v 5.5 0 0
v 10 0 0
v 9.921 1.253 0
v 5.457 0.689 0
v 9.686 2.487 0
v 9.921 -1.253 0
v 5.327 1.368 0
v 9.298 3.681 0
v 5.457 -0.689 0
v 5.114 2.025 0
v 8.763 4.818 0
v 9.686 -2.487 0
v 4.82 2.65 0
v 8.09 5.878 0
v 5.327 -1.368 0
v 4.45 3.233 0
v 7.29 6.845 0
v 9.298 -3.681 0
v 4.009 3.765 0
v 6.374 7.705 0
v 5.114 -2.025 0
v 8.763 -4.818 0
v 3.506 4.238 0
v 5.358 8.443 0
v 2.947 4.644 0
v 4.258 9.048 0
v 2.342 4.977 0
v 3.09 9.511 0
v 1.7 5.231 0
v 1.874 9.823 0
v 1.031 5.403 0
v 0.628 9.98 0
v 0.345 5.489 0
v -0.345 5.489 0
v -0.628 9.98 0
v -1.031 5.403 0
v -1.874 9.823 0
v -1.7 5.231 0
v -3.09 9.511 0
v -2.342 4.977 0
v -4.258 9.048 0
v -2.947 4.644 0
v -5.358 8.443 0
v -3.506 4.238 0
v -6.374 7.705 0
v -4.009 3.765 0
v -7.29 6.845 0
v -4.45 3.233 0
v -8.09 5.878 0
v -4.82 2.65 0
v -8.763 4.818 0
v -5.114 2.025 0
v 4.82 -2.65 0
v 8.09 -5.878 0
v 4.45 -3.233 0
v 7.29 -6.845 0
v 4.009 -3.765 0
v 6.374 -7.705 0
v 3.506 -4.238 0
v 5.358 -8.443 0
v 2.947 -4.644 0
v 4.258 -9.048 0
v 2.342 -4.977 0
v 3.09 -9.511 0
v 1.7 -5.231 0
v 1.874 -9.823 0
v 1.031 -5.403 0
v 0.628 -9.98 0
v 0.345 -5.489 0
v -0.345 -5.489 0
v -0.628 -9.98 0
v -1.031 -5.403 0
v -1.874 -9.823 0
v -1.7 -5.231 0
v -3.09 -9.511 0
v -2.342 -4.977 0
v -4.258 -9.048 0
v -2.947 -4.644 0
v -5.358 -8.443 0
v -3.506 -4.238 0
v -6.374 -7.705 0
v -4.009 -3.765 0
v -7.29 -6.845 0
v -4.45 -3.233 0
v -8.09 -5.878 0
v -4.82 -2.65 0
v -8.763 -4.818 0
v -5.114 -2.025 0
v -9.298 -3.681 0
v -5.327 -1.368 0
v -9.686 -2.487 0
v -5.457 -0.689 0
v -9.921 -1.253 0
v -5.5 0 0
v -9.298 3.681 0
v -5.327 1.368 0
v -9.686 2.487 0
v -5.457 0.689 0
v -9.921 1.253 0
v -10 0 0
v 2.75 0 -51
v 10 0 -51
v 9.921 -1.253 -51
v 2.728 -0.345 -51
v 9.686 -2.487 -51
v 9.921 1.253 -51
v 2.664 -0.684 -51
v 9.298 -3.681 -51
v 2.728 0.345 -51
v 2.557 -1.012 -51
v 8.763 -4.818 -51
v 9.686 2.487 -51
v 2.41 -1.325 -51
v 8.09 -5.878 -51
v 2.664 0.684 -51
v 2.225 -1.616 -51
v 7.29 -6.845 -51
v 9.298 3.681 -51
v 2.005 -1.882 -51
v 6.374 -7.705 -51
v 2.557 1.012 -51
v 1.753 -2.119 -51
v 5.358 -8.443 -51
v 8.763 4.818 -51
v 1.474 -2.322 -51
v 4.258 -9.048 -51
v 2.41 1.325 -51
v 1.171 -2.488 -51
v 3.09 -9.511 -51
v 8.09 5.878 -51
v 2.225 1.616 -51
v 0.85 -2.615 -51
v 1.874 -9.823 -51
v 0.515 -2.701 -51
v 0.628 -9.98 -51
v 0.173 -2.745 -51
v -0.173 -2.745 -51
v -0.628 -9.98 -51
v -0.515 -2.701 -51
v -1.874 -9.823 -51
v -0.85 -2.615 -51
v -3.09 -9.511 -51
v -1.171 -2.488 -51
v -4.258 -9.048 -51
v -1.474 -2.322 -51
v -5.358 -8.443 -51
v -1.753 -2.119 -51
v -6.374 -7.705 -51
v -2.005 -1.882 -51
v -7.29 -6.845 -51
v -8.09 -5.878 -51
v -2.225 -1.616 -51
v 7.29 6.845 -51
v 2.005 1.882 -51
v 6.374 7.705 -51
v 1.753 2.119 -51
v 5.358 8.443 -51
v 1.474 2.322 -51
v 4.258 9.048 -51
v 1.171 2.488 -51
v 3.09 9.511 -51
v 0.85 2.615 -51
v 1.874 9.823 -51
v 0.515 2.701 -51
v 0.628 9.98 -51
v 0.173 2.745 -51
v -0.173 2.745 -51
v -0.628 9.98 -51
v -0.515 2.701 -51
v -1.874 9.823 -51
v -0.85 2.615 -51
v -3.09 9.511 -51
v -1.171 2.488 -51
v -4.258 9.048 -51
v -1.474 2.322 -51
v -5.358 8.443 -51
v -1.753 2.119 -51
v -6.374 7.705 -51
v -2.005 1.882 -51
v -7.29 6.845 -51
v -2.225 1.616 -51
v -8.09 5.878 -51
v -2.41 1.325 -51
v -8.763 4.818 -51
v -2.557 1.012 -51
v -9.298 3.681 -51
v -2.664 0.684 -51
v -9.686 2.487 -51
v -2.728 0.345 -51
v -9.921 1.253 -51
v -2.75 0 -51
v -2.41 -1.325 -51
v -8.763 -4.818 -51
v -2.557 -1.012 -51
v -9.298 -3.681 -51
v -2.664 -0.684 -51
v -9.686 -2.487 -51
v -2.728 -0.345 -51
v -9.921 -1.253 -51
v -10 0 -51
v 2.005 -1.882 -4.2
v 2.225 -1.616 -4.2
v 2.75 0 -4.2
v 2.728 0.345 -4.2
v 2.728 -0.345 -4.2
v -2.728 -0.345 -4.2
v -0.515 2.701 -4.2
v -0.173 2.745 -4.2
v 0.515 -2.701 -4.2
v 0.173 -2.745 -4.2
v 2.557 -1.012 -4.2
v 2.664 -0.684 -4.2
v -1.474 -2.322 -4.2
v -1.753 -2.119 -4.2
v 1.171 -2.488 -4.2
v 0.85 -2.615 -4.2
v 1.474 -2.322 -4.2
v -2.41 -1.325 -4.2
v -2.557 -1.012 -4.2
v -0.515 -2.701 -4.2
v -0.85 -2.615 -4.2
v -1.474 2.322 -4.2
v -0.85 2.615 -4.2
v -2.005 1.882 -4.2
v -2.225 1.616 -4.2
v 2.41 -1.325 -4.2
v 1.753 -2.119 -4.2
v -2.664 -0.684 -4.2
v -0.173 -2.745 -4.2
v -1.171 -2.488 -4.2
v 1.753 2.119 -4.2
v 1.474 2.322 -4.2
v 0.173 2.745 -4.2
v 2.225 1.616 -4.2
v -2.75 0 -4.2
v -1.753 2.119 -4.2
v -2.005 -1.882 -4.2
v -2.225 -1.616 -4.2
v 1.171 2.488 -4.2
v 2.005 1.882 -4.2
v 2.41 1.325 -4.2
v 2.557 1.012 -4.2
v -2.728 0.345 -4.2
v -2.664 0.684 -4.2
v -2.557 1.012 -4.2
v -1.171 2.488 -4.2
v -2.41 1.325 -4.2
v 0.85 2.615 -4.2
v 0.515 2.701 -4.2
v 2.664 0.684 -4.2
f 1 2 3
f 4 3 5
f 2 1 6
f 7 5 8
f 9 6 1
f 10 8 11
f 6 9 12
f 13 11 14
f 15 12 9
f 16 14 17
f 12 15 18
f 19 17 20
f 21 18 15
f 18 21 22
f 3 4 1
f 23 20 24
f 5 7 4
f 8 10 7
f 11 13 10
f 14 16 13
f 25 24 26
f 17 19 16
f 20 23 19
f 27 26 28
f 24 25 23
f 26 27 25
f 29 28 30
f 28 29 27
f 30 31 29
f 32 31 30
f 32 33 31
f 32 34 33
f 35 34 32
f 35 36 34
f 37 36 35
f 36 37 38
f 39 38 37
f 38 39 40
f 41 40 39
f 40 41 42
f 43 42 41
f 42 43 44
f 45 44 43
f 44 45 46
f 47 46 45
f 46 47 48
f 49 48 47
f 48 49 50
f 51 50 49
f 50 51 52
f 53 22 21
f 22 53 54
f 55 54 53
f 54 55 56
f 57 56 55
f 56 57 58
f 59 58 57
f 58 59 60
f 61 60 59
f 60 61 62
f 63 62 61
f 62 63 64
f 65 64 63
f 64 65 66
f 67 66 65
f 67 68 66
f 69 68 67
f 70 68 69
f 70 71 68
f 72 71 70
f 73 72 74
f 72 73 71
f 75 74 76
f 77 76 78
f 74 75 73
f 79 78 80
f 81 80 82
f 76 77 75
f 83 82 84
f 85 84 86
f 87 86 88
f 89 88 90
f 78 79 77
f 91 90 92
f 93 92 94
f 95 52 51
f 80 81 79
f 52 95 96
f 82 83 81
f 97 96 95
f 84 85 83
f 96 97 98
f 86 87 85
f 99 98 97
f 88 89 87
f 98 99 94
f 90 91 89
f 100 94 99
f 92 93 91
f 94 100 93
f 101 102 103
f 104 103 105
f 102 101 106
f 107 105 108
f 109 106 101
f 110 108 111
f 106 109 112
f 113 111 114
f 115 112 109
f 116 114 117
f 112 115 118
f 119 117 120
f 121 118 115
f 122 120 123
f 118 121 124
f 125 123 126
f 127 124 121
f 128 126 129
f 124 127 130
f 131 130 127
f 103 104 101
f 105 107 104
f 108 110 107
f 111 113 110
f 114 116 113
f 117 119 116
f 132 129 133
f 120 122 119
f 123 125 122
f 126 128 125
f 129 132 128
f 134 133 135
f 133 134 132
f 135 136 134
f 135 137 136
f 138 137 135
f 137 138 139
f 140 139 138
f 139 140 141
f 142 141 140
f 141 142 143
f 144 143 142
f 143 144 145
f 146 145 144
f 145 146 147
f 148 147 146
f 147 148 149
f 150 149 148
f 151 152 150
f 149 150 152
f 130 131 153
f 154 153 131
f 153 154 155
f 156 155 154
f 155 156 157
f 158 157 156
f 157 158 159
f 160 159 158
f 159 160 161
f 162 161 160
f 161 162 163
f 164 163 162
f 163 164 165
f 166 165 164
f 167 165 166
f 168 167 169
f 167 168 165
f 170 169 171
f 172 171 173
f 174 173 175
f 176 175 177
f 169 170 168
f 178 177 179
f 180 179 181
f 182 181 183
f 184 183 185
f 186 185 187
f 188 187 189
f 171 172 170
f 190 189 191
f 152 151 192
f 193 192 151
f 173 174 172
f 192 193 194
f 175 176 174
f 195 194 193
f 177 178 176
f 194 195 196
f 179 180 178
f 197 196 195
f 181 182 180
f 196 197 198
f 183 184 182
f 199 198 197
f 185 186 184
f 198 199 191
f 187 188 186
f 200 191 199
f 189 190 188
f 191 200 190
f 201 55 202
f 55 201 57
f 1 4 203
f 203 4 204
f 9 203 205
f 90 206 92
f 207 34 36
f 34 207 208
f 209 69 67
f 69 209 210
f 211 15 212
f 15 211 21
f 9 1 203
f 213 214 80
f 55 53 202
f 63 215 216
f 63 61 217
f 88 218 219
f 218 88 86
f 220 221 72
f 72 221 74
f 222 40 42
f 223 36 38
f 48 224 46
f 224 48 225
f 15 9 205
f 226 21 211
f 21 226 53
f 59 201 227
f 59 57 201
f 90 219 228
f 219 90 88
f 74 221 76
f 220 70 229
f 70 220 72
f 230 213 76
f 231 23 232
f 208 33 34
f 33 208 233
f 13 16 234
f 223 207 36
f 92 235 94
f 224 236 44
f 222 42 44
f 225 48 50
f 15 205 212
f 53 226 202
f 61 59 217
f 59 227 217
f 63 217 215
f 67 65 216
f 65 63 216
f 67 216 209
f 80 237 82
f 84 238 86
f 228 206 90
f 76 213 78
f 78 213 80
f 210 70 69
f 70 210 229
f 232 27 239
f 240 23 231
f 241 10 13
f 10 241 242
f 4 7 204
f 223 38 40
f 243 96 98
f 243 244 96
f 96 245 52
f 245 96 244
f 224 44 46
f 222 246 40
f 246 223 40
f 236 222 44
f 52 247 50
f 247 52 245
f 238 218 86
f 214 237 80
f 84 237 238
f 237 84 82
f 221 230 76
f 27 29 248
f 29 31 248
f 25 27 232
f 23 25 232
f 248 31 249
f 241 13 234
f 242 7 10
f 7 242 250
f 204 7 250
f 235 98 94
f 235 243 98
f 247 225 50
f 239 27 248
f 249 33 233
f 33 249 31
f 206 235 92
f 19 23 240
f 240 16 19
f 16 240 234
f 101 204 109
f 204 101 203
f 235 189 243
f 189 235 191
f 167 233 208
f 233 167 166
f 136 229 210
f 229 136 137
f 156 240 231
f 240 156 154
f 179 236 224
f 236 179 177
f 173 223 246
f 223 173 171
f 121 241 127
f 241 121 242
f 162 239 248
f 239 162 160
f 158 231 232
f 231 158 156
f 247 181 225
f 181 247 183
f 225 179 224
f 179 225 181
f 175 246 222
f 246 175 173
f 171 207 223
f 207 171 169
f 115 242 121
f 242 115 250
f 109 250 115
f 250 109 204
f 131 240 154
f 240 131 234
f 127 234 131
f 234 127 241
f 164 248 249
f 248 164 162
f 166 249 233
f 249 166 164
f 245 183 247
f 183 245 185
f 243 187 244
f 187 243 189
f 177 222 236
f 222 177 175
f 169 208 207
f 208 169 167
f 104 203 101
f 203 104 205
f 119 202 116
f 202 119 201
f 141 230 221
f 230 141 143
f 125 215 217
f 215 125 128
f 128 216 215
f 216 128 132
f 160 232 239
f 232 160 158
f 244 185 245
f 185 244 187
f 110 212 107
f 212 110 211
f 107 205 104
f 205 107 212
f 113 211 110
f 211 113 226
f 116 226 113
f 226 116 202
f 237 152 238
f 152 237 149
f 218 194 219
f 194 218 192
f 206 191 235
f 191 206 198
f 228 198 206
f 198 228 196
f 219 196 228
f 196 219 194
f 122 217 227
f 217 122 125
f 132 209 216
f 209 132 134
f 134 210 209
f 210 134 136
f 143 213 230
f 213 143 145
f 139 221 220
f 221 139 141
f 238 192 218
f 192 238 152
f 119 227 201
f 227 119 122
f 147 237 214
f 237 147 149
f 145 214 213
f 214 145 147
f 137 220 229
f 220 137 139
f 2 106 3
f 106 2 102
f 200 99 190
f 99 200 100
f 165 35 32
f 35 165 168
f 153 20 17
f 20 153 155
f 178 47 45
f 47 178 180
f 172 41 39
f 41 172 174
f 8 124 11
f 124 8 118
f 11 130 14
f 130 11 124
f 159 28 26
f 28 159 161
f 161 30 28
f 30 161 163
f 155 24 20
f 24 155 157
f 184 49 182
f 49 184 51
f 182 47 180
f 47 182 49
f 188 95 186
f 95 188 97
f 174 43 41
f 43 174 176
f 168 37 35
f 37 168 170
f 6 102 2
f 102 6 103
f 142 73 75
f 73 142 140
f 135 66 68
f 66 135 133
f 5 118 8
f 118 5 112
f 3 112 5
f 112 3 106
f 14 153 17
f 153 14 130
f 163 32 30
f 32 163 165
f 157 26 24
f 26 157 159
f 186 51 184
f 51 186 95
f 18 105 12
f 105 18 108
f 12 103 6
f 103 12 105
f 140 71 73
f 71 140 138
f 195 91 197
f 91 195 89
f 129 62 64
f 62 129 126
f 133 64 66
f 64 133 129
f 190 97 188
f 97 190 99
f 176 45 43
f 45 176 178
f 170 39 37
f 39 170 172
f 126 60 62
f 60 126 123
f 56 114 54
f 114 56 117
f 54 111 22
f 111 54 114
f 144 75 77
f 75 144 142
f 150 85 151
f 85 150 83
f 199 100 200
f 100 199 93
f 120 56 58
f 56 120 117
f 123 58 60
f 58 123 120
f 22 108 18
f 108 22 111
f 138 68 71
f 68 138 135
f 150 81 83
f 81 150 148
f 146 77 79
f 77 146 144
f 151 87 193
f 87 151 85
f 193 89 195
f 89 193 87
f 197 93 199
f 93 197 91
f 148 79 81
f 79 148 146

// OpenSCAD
$fn = 50;


difference() {
	union() {
		translate(v = [0, 0, -51.0000000000]) {
			cylinder(h = 51, r = 10.0000000000);
		}
	}
	union() {
		translate(v = [0, 0, 0]) {
			rotate(a = [0, 0, 0]) {
				difference() {
					union() {
						#translate(v = [0, 0, -51.0000000000]) {
							cylinder(h = 51, r = 2.2500000000);
						}
						#translate(v = [0, 0, -4.2000000000]) {
							cylinder(h = 4.2000000000, r1 = 2.7500000000, r2 = 5.5000000000);
						}
						#translate(v = [0, 0, -51.0000000000]) {
							cylinder(h = 51, r = 2.7500000000);
						}
						#translate(v = [0, 0, -51.0000000000]) {
							cylinder(h = 51, r = 2.2500000000);
						}
					}
					union();
				}
			}
		}
	}
}
